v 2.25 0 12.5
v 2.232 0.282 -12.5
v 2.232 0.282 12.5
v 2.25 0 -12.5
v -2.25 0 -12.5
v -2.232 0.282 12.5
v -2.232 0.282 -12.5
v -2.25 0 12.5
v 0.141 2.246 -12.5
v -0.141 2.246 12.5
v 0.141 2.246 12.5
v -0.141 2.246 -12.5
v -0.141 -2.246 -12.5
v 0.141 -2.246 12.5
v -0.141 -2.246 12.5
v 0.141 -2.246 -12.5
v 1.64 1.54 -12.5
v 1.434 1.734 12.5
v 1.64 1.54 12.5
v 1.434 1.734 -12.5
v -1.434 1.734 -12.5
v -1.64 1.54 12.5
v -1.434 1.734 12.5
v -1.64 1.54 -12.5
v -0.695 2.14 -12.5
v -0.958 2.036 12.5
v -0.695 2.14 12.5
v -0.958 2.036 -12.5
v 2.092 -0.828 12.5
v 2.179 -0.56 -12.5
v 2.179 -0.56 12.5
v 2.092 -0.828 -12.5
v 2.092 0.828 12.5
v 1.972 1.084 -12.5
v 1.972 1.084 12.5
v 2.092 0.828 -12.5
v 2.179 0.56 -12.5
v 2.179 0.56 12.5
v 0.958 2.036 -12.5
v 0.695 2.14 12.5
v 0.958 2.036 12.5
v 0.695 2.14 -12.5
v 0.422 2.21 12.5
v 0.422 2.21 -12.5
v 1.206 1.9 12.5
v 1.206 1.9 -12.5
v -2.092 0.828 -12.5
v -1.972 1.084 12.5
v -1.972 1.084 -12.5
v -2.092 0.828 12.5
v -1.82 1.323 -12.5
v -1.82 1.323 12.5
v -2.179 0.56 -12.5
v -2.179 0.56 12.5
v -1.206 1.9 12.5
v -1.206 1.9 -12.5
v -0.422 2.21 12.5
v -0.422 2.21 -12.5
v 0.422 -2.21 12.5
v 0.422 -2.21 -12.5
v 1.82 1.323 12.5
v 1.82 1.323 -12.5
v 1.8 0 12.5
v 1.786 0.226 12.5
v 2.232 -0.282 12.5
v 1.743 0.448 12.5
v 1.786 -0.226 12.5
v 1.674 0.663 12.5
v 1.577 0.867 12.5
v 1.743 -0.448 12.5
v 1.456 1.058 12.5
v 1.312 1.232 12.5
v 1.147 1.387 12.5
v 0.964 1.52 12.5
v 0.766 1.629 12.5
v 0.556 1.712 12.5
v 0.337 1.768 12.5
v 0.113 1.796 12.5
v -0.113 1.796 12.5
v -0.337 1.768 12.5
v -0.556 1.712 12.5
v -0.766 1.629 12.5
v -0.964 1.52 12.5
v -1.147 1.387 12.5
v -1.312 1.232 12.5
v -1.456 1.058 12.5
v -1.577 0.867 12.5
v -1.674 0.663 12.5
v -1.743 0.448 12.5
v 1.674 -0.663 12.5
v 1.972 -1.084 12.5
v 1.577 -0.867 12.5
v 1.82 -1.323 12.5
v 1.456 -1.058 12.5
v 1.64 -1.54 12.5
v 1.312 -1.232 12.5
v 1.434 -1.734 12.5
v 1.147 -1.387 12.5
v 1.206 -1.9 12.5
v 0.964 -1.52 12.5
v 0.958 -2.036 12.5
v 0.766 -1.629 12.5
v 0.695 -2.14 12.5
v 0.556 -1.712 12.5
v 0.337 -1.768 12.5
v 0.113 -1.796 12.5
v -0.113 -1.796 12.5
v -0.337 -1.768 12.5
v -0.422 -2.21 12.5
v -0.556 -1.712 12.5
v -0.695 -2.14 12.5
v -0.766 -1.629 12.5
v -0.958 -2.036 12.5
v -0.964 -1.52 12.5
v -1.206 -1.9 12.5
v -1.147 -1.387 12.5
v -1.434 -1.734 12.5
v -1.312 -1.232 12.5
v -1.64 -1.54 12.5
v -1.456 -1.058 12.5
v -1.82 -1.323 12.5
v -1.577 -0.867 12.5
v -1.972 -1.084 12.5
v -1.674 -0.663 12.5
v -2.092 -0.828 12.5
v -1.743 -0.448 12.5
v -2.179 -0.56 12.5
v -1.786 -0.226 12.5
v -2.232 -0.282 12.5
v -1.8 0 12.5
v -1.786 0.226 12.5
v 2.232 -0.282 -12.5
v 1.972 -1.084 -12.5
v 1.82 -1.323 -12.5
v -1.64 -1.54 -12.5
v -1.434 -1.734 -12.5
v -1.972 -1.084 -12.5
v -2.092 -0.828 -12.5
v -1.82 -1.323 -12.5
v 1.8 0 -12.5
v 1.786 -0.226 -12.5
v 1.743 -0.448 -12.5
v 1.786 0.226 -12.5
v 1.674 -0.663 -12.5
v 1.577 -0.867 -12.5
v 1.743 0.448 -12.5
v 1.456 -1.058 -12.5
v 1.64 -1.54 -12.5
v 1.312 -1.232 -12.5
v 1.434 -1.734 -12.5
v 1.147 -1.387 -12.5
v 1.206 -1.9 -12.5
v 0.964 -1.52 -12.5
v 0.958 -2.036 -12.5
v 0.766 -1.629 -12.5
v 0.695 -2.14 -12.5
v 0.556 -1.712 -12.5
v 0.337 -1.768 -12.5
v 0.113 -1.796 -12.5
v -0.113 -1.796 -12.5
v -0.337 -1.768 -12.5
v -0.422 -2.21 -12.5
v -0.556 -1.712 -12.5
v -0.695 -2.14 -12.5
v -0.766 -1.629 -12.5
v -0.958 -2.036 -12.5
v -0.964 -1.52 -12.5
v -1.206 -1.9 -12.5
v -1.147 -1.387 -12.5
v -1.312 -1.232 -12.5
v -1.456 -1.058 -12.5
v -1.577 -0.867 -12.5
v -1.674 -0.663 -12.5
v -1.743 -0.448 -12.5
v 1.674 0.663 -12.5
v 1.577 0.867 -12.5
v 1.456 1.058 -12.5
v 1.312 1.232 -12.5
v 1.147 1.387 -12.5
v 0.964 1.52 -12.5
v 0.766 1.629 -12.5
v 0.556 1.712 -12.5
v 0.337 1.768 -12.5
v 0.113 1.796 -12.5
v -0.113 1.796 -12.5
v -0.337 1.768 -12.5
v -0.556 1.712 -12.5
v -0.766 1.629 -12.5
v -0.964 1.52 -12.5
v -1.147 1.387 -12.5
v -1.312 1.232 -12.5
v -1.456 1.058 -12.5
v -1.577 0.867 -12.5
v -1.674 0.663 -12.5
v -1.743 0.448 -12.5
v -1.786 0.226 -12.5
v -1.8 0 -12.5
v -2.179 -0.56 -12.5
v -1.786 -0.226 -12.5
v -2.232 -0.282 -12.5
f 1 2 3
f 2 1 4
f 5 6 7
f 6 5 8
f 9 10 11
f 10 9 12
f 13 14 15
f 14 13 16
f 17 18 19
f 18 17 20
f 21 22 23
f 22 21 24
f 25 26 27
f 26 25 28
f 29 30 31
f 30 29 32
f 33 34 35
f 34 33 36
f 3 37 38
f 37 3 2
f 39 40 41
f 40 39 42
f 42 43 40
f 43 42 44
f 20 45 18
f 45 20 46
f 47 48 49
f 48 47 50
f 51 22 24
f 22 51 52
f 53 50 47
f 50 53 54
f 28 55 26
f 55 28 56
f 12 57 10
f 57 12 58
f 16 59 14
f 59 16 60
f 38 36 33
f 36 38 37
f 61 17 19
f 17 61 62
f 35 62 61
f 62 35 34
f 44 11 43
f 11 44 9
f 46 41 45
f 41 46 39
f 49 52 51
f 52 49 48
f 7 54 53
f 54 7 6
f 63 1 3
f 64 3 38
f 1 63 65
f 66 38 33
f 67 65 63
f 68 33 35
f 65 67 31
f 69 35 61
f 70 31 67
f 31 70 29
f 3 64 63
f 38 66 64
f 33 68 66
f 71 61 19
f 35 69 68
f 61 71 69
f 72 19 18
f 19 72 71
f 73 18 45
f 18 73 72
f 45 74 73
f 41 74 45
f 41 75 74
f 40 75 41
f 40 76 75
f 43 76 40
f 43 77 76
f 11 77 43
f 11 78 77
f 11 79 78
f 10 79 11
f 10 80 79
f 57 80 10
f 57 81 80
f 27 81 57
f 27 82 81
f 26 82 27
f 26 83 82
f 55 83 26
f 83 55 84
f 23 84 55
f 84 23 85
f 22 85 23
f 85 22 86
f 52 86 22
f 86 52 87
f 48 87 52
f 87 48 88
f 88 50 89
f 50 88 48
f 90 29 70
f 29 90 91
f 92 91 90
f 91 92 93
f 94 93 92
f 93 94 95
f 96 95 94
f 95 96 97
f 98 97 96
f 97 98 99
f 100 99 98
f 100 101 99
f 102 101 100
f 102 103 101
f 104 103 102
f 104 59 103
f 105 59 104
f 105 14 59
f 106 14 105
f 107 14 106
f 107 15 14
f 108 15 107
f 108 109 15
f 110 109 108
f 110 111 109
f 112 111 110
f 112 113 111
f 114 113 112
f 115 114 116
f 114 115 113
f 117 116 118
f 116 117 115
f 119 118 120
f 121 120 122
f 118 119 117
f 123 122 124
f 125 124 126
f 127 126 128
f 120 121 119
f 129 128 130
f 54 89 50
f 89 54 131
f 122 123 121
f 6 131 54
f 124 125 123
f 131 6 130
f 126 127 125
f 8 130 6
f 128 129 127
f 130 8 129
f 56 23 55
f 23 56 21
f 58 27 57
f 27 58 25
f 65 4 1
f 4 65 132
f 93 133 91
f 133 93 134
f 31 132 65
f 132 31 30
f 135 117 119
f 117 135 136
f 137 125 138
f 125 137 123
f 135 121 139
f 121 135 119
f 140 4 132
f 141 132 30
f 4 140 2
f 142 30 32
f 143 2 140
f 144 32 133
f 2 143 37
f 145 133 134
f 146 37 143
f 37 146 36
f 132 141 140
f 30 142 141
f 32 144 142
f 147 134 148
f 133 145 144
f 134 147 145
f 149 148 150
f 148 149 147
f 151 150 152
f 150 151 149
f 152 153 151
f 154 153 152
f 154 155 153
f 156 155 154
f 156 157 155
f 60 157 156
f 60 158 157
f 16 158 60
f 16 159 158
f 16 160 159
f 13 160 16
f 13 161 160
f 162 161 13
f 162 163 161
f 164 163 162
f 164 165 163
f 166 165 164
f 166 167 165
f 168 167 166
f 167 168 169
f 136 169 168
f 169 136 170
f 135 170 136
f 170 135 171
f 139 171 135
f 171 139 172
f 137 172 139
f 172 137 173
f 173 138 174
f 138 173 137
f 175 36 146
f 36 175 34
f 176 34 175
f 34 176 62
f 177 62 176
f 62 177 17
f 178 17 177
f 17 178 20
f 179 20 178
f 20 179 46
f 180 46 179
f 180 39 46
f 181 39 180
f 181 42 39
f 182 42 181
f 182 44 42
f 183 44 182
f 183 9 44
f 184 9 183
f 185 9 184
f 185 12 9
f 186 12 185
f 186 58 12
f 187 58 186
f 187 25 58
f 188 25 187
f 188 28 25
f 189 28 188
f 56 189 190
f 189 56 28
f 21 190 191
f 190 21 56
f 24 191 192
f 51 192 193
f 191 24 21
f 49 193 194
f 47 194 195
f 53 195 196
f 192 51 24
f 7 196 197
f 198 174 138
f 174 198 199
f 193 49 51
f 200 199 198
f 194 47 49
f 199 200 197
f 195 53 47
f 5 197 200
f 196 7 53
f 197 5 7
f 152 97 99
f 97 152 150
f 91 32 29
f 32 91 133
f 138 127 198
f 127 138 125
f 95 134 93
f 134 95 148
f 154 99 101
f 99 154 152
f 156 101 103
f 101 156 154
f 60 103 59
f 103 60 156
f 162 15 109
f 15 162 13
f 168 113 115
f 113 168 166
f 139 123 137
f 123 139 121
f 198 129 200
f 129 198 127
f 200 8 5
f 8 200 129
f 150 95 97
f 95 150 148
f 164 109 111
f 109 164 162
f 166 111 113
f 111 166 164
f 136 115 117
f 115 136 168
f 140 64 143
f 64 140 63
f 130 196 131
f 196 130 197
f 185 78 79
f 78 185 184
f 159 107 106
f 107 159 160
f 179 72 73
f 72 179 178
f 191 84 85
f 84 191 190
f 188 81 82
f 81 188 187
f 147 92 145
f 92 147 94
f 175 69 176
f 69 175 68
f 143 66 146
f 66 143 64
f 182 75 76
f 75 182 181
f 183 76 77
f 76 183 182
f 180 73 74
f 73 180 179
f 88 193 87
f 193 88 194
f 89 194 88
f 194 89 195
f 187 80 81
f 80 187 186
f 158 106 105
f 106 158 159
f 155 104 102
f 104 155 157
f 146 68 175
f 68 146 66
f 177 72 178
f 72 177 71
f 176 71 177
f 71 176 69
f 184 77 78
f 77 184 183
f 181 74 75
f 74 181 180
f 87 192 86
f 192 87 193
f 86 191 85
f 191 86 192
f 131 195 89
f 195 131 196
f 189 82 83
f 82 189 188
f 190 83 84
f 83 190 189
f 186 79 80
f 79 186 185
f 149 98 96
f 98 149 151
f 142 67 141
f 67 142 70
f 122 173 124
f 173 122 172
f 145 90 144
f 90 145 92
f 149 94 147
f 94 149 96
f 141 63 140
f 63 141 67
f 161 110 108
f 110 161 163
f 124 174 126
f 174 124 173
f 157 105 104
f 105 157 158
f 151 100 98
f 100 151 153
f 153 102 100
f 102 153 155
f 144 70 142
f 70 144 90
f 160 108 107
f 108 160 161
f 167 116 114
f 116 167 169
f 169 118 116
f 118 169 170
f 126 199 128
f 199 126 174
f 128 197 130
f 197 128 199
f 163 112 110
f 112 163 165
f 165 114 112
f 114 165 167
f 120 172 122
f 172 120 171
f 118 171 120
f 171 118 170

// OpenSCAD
$fn = 50;


difference() {
	union() {
		translate(v = [0, 0, -12.5000000000]) {
			cylinder(h = 25, r = 2.2500000000);
		}
	}
	union() {
		translate(v = [0, 0, -100.0000000000]) {
			cylinder(h = 200, r = 1.8000000000);
		}
	}
}
